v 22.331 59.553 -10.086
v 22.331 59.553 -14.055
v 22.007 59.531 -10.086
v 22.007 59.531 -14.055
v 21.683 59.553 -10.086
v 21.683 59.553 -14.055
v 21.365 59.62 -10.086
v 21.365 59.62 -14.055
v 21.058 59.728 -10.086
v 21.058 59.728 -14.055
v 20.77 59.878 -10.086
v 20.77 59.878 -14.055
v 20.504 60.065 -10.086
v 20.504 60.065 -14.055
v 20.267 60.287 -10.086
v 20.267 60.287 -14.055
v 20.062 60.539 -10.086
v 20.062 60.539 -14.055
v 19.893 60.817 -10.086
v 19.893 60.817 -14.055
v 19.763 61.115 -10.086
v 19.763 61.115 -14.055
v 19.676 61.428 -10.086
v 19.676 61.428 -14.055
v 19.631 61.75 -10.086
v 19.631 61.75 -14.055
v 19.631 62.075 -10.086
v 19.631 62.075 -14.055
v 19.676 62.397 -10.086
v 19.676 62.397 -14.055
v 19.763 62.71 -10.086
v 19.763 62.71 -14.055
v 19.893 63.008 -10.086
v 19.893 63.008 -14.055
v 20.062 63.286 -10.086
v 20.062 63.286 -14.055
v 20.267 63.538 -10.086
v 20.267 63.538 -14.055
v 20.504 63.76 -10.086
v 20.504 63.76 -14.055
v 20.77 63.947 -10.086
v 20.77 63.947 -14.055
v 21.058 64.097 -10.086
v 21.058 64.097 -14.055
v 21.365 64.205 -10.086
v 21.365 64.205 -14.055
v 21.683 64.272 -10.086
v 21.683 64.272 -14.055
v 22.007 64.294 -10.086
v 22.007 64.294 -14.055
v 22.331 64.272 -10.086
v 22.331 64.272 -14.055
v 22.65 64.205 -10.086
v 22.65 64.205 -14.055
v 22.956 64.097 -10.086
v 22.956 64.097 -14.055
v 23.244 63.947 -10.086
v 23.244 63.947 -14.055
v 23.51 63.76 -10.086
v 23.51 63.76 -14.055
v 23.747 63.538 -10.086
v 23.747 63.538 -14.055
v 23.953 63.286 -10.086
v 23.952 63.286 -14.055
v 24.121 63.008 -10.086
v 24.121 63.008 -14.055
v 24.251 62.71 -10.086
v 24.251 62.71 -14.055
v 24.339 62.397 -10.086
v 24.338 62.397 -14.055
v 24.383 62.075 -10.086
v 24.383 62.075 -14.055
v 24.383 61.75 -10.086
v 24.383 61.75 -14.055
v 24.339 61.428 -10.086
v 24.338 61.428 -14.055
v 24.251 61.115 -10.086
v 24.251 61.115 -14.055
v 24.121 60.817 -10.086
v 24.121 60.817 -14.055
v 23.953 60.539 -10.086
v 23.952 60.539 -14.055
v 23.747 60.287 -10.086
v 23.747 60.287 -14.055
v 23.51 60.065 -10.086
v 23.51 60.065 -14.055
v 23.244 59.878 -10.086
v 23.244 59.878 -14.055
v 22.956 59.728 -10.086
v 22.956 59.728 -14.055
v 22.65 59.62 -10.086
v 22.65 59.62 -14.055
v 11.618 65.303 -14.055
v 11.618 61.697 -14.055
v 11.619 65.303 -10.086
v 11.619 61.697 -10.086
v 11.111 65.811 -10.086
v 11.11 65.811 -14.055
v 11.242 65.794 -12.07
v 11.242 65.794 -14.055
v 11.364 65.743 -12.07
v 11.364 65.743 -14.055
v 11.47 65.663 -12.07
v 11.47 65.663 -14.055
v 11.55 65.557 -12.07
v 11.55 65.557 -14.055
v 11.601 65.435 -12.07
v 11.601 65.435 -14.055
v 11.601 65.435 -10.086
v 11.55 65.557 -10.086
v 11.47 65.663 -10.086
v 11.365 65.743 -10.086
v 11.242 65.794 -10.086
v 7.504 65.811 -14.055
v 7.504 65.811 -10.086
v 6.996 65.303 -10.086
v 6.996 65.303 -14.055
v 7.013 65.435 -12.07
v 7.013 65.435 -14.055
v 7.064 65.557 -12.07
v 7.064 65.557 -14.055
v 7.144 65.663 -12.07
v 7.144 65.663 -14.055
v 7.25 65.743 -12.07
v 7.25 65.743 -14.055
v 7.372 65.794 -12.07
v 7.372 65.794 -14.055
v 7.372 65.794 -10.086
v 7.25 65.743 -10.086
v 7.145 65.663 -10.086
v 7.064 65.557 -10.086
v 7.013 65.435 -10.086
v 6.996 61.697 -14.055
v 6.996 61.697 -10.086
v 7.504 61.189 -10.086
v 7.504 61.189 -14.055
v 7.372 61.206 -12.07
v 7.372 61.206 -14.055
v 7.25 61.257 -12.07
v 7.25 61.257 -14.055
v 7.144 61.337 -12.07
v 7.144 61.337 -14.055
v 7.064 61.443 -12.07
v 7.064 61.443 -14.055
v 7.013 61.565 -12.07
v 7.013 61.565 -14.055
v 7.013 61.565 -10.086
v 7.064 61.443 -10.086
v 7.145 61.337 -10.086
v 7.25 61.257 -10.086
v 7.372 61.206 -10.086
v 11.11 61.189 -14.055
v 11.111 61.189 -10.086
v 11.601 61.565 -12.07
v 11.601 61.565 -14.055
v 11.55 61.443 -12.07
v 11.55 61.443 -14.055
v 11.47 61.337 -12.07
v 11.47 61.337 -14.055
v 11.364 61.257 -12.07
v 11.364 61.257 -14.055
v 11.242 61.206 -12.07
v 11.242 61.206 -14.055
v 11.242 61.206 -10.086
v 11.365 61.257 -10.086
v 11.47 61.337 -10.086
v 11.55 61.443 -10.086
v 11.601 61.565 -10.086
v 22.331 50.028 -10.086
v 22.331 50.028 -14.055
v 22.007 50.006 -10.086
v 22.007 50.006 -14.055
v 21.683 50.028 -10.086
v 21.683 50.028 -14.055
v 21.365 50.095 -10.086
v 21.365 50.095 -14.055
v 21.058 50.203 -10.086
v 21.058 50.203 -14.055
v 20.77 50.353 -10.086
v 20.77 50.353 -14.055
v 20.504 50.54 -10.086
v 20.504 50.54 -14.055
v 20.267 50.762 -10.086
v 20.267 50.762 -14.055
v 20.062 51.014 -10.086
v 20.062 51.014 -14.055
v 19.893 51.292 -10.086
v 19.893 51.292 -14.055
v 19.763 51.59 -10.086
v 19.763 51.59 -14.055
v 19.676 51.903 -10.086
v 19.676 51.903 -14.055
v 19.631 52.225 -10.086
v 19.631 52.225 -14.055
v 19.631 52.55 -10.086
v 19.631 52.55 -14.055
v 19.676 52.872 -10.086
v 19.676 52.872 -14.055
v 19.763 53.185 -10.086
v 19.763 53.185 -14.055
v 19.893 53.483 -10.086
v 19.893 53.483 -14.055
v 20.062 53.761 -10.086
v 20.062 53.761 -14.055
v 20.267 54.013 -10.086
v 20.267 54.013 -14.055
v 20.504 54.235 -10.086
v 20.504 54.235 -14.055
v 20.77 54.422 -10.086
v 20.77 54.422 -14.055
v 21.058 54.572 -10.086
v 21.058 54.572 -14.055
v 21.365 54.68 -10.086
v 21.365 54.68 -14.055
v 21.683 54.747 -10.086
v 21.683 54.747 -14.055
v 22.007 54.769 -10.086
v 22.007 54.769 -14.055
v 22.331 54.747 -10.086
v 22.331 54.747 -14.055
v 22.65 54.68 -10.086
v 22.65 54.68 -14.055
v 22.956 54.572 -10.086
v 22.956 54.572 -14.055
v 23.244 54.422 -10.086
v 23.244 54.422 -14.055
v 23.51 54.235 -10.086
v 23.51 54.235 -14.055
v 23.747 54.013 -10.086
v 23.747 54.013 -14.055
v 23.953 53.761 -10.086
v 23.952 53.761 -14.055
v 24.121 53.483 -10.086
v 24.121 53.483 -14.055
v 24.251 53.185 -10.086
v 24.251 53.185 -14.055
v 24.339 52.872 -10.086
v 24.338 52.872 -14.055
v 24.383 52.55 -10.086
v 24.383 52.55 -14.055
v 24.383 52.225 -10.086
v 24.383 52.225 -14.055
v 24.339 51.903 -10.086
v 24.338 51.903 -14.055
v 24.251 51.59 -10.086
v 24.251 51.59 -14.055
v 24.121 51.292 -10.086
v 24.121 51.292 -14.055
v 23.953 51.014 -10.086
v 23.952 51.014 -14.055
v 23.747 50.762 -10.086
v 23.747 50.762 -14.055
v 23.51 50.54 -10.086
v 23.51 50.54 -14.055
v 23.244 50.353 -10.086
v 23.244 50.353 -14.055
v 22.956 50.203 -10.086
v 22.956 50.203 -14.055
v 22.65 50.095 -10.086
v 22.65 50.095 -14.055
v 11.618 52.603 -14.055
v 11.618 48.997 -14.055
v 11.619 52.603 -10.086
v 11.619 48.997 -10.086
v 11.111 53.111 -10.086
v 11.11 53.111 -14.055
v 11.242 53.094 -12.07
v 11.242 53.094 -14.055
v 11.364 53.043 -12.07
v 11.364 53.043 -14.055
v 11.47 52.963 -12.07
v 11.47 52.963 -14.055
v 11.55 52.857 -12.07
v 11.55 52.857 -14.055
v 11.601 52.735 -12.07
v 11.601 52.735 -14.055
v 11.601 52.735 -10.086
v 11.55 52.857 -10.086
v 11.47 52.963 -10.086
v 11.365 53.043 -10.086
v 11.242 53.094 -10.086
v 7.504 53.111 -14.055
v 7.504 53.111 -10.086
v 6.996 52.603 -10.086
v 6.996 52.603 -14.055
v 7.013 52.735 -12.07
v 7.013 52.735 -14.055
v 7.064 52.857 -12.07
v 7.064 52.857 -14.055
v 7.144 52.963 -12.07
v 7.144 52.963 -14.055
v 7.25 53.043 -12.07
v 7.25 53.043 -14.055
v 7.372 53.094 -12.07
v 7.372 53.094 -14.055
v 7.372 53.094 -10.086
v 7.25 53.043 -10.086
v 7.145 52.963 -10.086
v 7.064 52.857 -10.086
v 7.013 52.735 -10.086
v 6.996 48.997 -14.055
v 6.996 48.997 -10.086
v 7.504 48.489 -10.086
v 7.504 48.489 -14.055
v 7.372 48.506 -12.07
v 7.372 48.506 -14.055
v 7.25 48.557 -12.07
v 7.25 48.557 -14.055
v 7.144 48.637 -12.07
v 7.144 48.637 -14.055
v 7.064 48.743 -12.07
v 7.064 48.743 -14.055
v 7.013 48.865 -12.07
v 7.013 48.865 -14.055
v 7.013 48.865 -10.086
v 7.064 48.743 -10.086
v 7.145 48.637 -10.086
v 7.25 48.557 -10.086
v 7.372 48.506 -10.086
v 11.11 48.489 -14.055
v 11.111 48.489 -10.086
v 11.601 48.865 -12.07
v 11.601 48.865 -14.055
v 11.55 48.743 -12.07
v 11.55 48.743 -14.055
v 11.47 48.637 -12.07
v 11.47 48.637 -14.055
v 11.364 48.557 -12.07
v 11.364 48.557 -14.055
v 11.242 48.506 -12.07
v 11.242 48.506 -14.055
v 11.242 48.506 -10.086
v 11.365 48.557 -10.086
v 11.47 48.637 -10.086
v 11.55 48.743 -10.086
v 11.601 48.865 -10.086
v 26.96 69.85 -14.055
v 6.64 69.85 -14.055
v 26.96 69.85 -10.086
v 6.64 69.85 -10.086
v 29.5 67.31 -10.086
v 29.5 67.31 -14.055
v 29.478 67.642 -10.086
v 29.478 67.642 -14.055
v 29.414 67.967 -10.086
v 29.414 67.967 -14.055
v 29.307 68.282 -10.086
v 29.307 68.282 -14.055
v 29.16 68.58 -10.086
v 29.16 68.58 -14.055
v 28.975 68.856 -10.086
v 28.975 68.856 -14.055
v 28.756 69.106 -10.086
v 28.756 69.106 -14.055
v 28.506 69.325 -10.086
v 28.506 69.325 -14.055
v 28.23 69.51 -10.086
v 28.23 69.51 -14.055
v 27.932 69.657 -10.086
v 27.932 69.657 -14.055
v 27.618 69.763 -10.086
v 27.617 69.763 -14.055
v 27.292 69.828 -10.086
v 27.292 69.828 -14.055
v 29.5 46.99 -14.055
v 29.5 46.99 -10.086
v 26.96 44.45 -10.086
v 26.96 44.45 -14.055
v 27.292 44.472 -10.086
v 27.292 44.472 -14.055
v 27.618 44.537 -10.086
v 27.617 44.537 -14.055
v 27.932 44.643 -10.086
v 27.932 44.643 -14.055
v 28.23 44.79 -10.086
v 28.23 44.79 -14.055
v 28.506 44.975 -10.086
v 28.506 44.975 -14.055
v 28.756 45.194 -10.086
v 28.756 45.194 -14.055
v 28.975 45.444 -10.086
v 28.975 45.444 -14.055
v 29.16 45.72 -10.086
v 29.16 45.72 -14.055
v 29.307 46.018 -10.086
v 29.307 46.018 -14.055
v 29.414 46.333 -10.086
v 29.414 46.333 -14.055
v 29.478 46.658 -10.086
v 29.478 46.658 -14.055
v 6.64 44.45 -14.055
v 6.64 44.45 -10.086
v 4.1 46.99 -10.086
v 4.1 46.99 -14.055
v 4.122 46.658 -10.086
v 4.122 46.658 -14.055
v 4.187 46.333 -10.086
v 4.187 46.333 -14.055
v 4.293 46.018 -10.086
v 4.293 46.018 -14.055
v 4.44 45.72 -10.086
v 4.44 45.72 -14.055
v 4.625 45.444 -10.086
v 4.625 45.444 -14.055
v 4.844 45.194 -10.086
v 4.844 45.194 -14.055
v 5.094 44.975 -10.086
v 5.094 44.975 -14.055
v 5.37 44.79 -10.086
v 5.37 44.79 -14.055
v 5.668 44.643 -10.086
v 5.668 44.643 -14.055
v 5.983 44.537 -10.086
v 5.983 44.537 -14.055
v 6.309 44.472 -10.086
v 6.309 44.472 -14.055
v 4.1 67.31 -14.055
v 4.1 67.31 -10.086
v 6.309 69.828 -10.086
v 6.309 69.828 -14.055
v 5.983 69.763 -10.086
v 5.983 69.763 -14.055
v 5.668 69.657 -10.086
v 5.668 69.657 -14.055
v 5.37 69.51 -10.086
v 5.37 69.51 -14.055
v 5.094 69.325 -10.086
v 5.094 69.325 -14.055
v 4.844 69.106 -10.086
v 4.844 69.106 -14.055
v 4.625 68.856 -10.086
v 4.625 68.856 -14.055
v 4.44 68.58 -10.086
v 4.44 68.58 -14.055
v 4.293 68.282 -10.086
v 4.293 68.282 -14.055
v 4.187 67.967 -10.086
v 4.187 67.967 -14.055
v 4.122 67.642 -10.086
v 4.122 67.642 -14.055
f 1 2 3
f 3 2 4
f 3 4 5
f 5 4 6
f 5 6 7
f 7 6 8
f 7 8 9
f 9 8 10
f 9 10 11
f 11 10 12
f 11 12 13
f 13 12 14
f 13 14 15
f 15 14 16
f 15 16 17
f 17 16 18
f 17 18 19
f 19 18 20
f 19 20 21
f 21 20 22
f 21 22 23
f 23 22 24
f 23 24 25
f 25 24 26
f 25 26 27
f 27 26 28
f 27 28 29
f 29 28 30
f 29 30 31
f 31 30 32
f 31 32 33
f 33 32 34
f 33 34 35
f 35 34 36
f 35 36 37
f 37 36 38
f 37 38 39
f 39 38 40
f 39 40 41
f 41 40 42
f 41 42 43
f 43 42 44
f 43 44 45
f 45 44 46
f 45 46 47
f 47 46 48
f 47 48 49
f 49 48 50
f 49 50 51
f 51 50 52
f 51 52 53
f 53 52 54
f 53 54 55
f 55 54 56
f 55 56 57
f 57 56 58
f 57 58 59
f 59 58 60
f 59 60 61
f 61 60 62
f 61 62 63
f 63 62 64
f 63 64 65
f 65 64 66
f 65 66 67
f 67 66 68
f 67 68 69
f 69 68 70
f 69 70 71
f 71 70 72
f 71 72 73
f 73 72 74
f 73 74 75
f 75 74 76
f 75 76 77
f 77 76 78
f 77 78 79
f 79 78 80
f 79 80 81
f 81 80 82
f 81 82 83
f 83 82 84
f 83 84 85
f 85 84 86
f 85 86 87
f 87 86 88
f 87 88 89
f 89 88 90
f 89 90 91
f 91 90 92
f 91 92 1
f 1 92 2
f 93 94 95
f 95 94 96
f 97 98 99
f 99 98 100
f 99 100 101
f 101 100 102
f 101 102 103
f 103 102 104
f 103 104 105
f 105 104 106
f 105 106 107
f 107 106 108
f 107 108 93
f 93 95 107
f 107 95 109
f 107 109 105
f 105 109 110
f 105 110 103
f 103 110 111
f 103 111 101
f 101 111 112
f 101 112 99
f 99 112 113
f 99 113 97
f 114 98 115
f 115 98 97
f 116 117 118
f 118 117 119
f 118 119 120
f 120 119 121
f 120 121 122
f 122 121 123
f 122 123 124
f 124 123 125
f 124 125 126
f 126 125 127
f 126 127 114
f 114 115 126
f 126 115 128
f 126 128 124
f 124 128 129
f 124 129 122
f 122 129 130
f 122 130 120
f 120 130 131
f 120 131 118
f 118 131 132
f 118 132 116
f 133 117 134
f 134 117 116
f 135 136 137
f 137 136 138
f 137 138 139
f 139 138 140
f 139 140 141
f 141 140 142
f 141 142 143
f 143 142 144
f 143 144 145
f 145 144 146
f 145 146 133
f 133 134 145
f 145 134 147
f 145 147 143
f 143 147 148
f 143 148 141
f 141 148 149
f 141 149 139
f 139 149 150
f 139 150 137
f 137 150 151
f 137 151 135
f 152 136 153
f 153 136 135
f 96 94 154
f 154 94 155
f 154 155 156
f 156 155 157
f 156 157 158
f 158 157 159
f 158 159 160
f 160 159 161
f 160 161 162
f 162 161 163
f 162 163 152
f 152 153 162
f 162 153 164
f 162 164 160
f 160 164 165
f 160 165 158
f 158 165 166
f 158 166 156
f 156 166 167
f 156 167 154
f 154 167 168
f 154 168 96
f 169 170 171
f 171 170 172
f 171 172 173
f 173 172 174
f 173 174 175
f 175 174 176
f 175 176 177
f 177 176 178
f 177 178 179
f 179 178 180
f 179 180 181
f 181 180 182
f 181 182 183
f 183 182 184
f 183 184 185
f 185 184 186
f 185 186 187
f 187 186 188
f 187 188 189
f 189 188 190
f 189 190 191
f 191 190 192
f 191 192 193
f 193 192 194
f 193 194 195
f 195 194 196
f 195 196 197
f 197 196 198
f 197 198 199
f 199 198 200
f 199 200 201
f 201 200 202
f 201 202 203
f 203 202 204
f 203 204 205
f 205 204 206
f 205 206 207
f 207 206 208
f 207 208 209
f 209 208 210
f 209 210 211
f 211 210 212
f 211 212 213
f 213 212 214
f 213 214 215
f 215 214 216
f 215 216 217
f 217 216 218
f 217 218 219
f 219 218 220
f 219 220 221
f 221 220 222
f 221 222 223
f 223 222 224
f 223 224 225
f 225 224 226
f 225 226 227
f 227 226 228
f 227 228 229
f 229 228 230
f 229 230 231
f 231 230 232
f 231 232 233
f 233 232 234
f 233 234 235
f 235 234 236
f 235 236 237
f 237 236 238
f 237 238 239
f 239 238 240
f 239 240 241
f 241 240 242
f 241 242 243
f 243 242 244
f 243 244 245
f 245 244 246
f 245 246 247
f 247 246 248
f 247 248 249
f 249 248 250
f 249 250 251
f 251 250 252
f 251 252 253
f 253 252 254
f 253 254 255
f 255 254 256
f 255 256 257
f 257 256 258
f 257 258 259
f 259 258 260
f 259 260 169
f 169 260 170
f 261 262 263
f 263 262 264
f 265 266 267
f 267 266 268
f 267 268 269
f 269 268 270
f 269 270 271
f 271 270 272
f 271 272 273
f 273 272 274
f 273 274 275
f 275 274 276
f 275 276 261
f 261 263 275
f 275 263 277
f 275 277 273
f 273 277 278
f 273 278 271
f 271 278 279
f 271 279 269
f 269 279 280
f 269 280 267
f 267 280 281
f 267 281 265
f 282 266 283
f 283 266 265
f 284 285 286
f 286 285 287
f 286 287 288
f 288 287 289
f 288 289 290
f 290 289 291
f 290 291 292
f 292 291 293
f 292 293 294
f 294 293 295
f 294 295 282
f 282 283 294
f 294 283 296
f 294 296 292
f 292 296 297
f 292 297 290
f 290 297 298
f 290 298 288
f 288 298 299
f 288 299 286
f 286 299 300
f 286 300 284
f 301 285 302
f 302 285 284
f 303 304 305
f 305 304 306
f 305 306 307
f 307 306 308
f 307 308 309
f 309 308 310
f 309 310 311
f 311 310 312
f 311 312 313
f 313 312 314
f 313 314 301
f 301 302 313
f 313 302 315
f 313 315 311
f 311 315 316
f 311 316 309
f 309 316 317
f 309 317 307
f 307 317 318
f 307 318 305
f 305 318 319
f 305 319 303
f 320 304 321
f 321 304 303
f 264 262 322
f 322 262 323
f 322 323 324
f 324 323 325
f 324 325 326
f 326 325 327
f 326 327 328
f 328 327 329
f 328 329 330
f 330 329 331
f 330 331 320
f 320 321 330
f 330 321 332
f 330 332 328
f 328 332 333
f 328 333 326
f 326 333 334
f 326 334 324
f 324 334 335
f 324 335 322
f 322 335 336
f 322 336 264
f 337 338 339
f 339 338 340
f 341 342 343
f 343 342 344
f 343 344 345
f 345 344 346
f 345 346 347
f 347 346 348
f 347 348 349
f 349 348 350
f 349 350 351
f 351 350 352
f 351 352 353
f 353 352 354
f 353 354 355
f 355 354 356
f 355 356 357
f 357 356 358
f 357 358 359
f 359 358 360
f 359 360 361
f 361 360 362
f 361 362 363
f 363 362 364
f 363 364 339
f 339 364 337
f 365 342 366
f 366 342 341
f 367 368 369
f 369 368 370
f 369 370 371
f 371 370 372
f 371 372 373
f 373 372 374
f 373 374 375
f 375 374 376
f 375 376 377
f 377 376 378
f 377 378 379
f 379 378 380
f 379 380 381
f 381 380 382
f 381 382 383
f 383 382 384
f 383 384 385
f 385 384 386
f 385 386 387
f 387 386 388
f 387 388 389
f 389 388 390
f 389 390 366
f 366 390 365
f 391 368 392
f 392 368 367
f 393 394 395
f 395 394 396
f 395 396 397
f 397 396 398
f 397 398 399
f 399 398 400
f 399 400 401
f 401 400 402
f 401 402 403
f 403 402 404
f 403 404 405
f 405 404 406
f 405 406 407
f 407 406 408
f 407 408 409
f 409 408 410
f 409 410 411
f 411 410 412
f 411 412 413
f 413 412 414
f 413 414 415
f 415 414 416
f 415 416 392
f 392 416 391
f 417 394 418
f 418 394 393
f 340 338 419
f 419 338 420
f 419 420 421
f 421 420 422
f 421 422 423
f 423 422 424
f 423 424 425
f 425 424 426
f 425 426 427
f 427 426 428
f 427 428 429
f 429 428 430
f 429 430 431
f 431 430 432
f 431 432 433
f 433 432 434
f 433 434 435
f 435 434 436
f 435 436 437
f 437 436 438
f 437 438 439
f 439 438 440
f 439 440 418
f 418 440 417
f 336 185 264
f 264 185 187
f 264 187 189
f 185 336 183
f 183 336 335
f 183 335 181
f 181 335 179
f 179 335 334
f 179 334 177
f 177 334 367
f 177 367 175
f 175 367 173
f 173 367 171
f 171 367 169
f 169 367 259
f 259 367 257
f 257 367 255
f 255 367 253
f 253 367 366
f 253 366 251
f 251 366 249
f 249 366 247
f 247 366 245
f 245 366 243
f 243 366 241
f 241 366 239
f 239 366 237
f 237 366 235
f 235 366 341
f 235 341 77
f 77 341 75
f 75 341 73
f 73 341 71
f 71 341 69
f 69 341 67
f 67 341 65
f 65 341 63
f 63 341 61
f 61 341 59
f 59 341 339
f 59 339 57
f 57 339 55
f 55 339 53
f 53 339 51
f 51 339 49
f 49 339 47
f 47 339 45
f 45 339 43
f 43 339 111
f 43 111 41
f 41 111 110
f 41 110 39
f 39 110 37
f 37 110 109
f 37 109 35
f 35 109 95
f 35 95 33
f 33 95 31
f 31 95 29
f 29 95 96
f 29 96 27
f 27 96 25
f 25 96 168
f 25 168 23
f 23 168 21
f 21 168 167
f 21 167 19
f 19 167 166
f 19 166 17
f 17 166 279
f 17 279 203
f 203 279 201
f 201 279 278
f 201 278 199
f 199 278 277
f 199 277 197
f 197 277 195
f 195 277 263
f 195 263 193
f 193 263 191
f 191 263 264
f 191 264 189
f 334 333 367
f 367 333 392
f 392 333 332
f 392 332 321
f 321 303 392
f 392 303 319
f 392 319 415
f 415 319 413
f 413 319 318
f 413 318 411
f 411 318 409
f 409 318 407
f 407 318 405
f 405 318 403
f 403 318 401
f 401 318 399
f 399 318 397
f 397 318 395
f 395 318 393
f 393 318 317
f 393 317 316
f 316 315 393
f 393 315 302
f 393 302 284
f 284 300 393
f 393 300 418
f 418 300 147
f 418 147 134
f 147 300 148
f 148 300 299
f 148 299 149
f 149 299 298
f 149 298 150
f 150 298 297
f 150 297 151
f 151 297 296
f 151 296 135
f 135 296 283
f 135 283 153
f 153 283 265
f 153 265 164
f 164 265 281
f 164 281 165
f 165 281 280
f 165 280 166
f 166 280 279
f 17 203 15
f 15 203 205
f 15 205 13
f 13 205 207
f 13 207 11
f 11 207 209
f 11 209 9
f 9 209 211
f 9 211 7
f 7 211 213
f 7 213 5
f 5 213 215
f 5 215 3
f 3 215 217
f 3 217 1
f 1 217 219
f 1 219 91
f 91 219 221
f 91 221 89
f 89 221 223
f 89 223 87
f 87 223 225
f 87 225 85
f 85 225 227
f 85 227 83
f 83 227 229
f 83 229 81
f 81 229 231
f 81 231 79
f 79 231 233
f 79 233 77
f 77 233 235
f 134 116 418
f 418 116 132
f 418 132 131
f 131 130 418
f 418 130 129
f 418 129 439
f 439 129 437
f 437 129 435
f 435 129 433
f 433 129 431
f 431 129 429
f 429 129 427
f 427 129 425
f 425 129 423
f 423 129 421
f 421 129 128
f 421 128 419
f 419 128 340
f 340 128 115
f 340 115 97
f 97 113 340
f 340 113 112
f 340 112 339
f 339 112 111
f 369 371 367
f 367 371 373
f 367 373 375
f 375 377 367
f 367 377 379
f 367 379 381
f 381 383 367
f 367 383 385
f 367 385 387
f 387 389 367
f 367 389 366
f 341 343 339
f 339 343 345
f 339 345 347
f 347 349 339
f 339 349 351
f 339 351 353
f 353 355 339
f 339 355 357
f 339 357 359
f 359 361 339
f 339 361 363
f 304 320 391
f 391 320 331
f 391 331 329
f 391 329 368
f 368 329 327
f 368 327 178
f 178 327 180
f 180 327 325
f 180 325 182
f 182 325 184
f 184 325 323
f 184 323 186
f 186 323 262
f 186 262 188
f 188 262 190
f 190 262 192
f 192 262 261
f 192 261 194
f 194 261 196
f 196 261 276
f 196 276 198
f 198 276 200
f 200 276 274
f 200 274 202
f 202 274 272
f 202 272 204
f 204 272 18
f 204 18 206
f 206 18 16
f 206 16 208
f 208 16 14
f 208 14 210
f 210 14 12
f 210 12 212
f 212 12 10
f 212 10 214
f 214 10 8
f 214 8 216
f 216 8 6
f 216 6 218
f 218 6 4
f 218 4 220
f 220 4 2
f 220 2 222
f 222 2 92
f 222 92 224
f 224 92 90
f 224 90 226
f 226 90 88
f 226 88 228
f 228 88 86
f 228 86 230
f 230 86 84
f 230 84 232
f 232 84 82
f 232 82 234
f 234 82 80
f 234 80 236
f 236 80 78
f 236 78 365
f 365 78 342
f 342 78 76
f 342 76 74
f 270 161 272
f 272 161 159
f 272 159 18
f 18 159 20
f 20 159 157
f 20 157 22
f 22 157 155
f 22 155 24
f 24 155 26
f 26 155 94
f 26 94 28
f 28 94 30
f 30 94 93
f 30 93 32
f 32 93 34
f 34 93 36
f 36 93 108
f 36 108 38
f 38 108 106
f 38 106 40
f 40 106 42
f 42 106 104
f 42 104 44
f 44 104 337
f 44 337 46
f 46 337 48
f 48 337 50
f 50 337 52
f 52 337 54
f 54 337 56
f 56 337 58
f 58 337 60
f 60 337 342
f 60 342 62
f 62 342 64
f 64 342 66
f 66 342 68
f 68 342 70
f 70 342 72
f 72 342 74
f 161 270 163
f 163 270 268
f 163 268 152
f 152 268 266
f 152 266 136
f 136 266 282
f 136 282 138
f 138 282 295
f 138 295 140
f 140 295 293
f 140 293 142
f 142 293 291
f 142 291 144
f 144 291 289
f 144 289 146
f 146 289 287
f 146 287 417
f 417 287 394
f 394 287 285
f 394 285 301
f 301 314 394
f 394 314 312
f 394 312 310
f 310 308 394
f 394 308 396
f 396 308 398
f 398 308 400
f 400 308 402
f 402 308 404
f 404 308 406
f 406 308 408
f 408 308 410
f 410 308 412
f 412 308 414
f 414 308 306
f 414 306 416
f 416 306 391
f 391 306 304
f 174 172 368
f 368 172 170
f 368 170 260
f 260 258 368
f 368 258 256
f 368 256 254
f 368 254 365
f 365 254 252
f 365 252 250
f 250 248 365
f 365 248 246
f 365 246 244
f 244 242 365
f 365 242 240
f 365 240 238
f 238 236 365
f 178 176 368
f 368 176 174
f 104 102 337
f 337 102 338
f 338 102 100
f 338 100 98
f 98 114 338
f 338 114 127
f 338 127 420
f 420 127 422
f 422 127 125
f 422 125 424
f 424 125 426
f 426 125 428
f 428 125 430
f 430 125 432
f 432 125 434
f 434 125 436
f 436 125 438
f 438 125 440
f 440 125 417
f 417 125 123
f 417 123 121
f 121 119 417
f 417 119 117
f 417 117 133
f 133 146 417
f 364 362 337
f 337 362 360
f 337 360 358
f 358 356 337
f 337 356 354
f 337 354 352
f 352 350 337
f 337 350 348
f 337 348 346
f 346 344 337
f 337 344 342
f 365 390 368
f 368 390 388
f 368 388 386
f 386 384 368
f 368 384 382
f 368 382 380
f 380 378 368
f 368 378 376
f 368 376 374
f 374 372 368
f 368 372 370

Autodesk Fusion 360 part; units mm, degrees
sketch "Sketch1" plane through (-0.0003, 0, -14.0546) normal (0, 0, 1) x (0, 1, 0)
  arc A0 (15.0114, -7.5039) -> (14.5034, -6.9959) centre (14.5034, -7.5039) ccw
  line L0 (15.0114, -7.5039) -> (15.0114, -11.1107)
  arc A1 (14.5034, -11.6187) -> (15.0114, -11.1107) centre (14.5034, -11.1107) ccw
  line L1 (14.5034, -11.6187) -> (10.8966, -11.6187)
  arc A2 (10.3886, -11.1107) -> (10.8966, -11.6187) centre (10.8966, -11.1107) ccw
  line L2 (10.3886, -11.1107) -> (10.3886, -7.5039)
  arc A3 (10.8966, -6.9959) -> (10.3886, -7.5039) centre (10.8966, -7.5039) ccw
  line L3 (10.8966, -6.9959) -> (14.5034, -6.9959)
  arc A4 (27.7114, -7.5039) -> (27.2034, -6.9959) centre (27.2034, -7.5039) ccw
  line L4 (27.7114, -7.5039) -> (27.7114, -11.1107)
  arc A5 (27.2034, -11.6187) -> (27.7114, -11.1107) centre (27.2034, -11.1107) ccw
  line L5 (27.2034, -11.6187) -> (23.5966, -11.6187)
  arc A6 (23.0886, -11.1107) -> (23.5966, -11.6187) centre (23.5966, -11.1107) ccw
  line L6 (23.0886, -11.1107) -> (23.0886, -7.5039)
  arc A7 (23.5966, -6.9959) -> (23.0886, -7.5039) centre (23.5966, -7.5039) ccw
  line L7 (23.5966, -6.9959) -> (27.2034, -6.9959)
  arc A8 (40.4114, -7.5039) -> (39.9034, -6.9959) centre (39.9034, -7.5039) ccw
  line L8 (40.4114, -7.5039) -> (40.4114, -11.1107)
  arc A9 (39.9034, -11.6187) -> (40.4114, -11.1107) centre (39.9034, -11.1107) ccw
  line L9 (39.9034, -11.6187) -> (36.2966, -11.6187)
  arc A10 (35.7886, -11.1107) -> (36.2966, -11.6187) centre (36.2966, -11.1107) ccw
  line L10 (35.7886, -11.1107) -> (35.7886, -7.5039)
  arc A11 (36.2966, -6.9959) -> (35.7886, -7.5039) centre (36.2966, -7.5039) ccw
  line L11 (36.2966, -6.9959) -> (39.9034, -6.9959)
  arc A12 (53.1114, -7.5039) -> (52.6034, -6.9959) centre (52.6034, -7.5039) ccw
  line L12 (53.1114, -7.5039) -> (53.1114, -11.1107)
  arc A13 (52.6034, -11.6187) -> (53.1114, -11.1107) centre (52.6034, -11.1107) ccw
  line L13 (52.6034, -11.6187) -> (48.9966, -11.6187)
  arc A14 (48.4886, -11.1107) -> (48.9966, -11.6187) centre (48.9966, -11.1107) ccw
  line L14 (48.4886, -11.1107) -> (48.4886, -7.5039)
  arc A15 (48.9966, -6.9959) -> (48.4886, -7.5039) centre (48.9966, -7.5039) ccw
  line L15 (48.9966, -6.9959) -> (52.6034, -6.9959)
  arc A16 (65.8114, -7.5039) -> (65.3034, -6.9959) centre (65.3034, -7.5039) ccw
  line L16 (65.8114, -7.5039) -> (65.8114, -11.1107)
  arc A17 (65.3034, -11.6187) -> (65.8114, -11.1107) centre (65.3034, -11.1107) ccw
  line L17 (65.3034, -11.6187) -> (61.6966, -11.6187)
  arc A18 (61.1886, -11.1107) -> (61.6966, -11.6187) centre (61.6966, -11.1107) ccw
  line L18 (61.1886, -11.1107) -> (61.1886, -7.5039)
  arc A19 (61.6966, -6.9959) -> (61.1886, -7.5039) centre (61.6966, -7.5039) ccw
  line L19 (61.6966, -6.9959) -> (65.3034, -6.9959)
  arc A20 (2.3114, -7.5039) -> (1.8034, -6.9959) centre (1.8034, -7.5039) ccw
  line L20 (2.3114, -7.5039) -> (2.3114, -11.1107)
  arc A21 (1.8034, -11.6187) -> (2.3114, -11.1107) centre (1.8034, -11.1107) ccw
  line L21 (1.8034, -11.6187) -> (-1.8034, -11.6187)
  arc A22 (-2.3114, -11.1107) -> (-1.8034, -11.6187) centre (-1.8034, -11.1107) ccw
  line L22 (-2.3114, -11.1107) -> (-2.3114, -7.5039)
  arc A23 (-1.8034, -6.9959) -> (-2.3114, -7.5039) centre (-1.8034, -7.5039) ccw
  line L23 (-1.8034, -6.9959) -> (1.8034, -6.9959)
  line L24 (69.85, -15.6573) -> (69.85, -4.1003)
  line L25 (69.85, -4.1003) -> (58.1488, -4.1003)
  line L26 (58.1488, -4.1003) -> (57.15, -5.0991)
  line L27 (57.15, -5.0991) -> (56.1512, -4.1003)
  line L28 (56.1512, -4.1003) -> (-6.35, -4.1003)
  line L29 (-6.35, -4.1003) -> (-6.35, -13.1692)
  arc A24 (-6.35, -13.1692) -> (-6.2036, -13.5228) centre (-5.85, -13.1692) ccw
  line L30 (-6.2036, -13.5228) -> (-4.2155, -15.5109)
  arc A25 (-4.2155, -15.5109) -> (-3.8619, -15.6573) centre (-3.8619, -15.1573) ccw
  line L31 (-3.8619, -15.6573) -> (54.6619, -15.6573)
  arc A26 (54.6619, -15.6573) -> (55.0155, -15.5109) centre (54.6619, -15.1573) ccw
  line L32 (55.0155, -15.5109) -> (56.7964, -13.7299)
  arc A27 (57.5036, -13.7299) -> (56.7964, -13.7299) centre (57.15, -14.0834) ccw
  line L33 (57.5036, -13.7299) -> (59.2845, -15.5109)
  arc A28 (59.2845, -15.5109) -> (59.6381, -15.6573) centre (59.6381, -15.1573) ccw
  line L34 (59.6381, -15.6573) -> (69.85, -15.6573)
  line L35 (69.85, -6.6403) -> (69.85, -26.9603)
  line L36 (67.31, -29.5003) -> (46.99, -29.5003)
  line L37 (44.45, -26.9603) -> (44.45, -6.6403)
  line L38 (46.99, -4.1003) -> (67.31, -4.1003)
  arc A29 (46.99, -4.1003) -> (44.45, -6.6403) centre (46.99, -6.6403) ccw
  arc A30 (69.85, -6.6403) -> (67.31, -4.1003) centre (67.31, -6.6403) ccw
  arc A31 (67.31, -29.5003) -> (69.85, -26.9603) centre (67.31, -26.9603) ccw
  arc A32 (44.45, -26.9603) -> (46.99, -29.5003) centre (46.99, -26.9603) ccw
  line L39 (69.85, -15.6573) -> (69.85, -22.0073)
  line L40 (69.85, -22.0073) -> (44.45, -22.0073)
  line L41 (69.85, -22.0073) -> (61.9125, -22.0073)
  circle A33 centre (61.9125, -22.0073) radius 2.3813
  line L42 (61.9125, -22.0073) -> (52.3875, -22.0073)
  circle A34 centre (52.3875, -22.0073) radius 2.3813
  point P0 (69.85, -4.1003)
  point P1 (69.85, -29.5003)
  point P2 (44.45, -29.5003)
  point P3 (44.45, -4.1003)
  dimension "d1" = 25.4
  dimension "d2" = 25.4
  dimension "d3" = 25.4
  dimension "d4" = 2.54
  dimension "d5" = 6.35
  dimension "d6" = 7.9375
  dimension "d7" = 4.7625
  dimension "d8" = 9.525
  dimension "d9" = 4.7625
extrude "Extrude1" add sketch "Sketch1" along normal blind 3.9688 contours L24 L25 L26 L27 L28 L31 A26 L32 A27 L33 A28 L34 L35 L37 L38 A29 A30 | L31 A26 L32 A27 L33 A28 L34 L35 L37 L39 L40 L41 A33 L42 A34 | L35 L36 L37 A31 A32 L40 L41 A33 L42 A34 | L26 L27 L38
equation "d5 = ( 1 / 4 ) * 1 in"
equation "d6 = ( 5 / 16 ) * 1 in"
equation "d7 = ( 3 / 16 ) * 1 in"
equation "d8 = ( 3 / 8 ) * 1 in"
equation "d9 = ( 3 / 16 ) * 1 in"
equation "d10 = ( 5 / 32 ) * 1 in"
